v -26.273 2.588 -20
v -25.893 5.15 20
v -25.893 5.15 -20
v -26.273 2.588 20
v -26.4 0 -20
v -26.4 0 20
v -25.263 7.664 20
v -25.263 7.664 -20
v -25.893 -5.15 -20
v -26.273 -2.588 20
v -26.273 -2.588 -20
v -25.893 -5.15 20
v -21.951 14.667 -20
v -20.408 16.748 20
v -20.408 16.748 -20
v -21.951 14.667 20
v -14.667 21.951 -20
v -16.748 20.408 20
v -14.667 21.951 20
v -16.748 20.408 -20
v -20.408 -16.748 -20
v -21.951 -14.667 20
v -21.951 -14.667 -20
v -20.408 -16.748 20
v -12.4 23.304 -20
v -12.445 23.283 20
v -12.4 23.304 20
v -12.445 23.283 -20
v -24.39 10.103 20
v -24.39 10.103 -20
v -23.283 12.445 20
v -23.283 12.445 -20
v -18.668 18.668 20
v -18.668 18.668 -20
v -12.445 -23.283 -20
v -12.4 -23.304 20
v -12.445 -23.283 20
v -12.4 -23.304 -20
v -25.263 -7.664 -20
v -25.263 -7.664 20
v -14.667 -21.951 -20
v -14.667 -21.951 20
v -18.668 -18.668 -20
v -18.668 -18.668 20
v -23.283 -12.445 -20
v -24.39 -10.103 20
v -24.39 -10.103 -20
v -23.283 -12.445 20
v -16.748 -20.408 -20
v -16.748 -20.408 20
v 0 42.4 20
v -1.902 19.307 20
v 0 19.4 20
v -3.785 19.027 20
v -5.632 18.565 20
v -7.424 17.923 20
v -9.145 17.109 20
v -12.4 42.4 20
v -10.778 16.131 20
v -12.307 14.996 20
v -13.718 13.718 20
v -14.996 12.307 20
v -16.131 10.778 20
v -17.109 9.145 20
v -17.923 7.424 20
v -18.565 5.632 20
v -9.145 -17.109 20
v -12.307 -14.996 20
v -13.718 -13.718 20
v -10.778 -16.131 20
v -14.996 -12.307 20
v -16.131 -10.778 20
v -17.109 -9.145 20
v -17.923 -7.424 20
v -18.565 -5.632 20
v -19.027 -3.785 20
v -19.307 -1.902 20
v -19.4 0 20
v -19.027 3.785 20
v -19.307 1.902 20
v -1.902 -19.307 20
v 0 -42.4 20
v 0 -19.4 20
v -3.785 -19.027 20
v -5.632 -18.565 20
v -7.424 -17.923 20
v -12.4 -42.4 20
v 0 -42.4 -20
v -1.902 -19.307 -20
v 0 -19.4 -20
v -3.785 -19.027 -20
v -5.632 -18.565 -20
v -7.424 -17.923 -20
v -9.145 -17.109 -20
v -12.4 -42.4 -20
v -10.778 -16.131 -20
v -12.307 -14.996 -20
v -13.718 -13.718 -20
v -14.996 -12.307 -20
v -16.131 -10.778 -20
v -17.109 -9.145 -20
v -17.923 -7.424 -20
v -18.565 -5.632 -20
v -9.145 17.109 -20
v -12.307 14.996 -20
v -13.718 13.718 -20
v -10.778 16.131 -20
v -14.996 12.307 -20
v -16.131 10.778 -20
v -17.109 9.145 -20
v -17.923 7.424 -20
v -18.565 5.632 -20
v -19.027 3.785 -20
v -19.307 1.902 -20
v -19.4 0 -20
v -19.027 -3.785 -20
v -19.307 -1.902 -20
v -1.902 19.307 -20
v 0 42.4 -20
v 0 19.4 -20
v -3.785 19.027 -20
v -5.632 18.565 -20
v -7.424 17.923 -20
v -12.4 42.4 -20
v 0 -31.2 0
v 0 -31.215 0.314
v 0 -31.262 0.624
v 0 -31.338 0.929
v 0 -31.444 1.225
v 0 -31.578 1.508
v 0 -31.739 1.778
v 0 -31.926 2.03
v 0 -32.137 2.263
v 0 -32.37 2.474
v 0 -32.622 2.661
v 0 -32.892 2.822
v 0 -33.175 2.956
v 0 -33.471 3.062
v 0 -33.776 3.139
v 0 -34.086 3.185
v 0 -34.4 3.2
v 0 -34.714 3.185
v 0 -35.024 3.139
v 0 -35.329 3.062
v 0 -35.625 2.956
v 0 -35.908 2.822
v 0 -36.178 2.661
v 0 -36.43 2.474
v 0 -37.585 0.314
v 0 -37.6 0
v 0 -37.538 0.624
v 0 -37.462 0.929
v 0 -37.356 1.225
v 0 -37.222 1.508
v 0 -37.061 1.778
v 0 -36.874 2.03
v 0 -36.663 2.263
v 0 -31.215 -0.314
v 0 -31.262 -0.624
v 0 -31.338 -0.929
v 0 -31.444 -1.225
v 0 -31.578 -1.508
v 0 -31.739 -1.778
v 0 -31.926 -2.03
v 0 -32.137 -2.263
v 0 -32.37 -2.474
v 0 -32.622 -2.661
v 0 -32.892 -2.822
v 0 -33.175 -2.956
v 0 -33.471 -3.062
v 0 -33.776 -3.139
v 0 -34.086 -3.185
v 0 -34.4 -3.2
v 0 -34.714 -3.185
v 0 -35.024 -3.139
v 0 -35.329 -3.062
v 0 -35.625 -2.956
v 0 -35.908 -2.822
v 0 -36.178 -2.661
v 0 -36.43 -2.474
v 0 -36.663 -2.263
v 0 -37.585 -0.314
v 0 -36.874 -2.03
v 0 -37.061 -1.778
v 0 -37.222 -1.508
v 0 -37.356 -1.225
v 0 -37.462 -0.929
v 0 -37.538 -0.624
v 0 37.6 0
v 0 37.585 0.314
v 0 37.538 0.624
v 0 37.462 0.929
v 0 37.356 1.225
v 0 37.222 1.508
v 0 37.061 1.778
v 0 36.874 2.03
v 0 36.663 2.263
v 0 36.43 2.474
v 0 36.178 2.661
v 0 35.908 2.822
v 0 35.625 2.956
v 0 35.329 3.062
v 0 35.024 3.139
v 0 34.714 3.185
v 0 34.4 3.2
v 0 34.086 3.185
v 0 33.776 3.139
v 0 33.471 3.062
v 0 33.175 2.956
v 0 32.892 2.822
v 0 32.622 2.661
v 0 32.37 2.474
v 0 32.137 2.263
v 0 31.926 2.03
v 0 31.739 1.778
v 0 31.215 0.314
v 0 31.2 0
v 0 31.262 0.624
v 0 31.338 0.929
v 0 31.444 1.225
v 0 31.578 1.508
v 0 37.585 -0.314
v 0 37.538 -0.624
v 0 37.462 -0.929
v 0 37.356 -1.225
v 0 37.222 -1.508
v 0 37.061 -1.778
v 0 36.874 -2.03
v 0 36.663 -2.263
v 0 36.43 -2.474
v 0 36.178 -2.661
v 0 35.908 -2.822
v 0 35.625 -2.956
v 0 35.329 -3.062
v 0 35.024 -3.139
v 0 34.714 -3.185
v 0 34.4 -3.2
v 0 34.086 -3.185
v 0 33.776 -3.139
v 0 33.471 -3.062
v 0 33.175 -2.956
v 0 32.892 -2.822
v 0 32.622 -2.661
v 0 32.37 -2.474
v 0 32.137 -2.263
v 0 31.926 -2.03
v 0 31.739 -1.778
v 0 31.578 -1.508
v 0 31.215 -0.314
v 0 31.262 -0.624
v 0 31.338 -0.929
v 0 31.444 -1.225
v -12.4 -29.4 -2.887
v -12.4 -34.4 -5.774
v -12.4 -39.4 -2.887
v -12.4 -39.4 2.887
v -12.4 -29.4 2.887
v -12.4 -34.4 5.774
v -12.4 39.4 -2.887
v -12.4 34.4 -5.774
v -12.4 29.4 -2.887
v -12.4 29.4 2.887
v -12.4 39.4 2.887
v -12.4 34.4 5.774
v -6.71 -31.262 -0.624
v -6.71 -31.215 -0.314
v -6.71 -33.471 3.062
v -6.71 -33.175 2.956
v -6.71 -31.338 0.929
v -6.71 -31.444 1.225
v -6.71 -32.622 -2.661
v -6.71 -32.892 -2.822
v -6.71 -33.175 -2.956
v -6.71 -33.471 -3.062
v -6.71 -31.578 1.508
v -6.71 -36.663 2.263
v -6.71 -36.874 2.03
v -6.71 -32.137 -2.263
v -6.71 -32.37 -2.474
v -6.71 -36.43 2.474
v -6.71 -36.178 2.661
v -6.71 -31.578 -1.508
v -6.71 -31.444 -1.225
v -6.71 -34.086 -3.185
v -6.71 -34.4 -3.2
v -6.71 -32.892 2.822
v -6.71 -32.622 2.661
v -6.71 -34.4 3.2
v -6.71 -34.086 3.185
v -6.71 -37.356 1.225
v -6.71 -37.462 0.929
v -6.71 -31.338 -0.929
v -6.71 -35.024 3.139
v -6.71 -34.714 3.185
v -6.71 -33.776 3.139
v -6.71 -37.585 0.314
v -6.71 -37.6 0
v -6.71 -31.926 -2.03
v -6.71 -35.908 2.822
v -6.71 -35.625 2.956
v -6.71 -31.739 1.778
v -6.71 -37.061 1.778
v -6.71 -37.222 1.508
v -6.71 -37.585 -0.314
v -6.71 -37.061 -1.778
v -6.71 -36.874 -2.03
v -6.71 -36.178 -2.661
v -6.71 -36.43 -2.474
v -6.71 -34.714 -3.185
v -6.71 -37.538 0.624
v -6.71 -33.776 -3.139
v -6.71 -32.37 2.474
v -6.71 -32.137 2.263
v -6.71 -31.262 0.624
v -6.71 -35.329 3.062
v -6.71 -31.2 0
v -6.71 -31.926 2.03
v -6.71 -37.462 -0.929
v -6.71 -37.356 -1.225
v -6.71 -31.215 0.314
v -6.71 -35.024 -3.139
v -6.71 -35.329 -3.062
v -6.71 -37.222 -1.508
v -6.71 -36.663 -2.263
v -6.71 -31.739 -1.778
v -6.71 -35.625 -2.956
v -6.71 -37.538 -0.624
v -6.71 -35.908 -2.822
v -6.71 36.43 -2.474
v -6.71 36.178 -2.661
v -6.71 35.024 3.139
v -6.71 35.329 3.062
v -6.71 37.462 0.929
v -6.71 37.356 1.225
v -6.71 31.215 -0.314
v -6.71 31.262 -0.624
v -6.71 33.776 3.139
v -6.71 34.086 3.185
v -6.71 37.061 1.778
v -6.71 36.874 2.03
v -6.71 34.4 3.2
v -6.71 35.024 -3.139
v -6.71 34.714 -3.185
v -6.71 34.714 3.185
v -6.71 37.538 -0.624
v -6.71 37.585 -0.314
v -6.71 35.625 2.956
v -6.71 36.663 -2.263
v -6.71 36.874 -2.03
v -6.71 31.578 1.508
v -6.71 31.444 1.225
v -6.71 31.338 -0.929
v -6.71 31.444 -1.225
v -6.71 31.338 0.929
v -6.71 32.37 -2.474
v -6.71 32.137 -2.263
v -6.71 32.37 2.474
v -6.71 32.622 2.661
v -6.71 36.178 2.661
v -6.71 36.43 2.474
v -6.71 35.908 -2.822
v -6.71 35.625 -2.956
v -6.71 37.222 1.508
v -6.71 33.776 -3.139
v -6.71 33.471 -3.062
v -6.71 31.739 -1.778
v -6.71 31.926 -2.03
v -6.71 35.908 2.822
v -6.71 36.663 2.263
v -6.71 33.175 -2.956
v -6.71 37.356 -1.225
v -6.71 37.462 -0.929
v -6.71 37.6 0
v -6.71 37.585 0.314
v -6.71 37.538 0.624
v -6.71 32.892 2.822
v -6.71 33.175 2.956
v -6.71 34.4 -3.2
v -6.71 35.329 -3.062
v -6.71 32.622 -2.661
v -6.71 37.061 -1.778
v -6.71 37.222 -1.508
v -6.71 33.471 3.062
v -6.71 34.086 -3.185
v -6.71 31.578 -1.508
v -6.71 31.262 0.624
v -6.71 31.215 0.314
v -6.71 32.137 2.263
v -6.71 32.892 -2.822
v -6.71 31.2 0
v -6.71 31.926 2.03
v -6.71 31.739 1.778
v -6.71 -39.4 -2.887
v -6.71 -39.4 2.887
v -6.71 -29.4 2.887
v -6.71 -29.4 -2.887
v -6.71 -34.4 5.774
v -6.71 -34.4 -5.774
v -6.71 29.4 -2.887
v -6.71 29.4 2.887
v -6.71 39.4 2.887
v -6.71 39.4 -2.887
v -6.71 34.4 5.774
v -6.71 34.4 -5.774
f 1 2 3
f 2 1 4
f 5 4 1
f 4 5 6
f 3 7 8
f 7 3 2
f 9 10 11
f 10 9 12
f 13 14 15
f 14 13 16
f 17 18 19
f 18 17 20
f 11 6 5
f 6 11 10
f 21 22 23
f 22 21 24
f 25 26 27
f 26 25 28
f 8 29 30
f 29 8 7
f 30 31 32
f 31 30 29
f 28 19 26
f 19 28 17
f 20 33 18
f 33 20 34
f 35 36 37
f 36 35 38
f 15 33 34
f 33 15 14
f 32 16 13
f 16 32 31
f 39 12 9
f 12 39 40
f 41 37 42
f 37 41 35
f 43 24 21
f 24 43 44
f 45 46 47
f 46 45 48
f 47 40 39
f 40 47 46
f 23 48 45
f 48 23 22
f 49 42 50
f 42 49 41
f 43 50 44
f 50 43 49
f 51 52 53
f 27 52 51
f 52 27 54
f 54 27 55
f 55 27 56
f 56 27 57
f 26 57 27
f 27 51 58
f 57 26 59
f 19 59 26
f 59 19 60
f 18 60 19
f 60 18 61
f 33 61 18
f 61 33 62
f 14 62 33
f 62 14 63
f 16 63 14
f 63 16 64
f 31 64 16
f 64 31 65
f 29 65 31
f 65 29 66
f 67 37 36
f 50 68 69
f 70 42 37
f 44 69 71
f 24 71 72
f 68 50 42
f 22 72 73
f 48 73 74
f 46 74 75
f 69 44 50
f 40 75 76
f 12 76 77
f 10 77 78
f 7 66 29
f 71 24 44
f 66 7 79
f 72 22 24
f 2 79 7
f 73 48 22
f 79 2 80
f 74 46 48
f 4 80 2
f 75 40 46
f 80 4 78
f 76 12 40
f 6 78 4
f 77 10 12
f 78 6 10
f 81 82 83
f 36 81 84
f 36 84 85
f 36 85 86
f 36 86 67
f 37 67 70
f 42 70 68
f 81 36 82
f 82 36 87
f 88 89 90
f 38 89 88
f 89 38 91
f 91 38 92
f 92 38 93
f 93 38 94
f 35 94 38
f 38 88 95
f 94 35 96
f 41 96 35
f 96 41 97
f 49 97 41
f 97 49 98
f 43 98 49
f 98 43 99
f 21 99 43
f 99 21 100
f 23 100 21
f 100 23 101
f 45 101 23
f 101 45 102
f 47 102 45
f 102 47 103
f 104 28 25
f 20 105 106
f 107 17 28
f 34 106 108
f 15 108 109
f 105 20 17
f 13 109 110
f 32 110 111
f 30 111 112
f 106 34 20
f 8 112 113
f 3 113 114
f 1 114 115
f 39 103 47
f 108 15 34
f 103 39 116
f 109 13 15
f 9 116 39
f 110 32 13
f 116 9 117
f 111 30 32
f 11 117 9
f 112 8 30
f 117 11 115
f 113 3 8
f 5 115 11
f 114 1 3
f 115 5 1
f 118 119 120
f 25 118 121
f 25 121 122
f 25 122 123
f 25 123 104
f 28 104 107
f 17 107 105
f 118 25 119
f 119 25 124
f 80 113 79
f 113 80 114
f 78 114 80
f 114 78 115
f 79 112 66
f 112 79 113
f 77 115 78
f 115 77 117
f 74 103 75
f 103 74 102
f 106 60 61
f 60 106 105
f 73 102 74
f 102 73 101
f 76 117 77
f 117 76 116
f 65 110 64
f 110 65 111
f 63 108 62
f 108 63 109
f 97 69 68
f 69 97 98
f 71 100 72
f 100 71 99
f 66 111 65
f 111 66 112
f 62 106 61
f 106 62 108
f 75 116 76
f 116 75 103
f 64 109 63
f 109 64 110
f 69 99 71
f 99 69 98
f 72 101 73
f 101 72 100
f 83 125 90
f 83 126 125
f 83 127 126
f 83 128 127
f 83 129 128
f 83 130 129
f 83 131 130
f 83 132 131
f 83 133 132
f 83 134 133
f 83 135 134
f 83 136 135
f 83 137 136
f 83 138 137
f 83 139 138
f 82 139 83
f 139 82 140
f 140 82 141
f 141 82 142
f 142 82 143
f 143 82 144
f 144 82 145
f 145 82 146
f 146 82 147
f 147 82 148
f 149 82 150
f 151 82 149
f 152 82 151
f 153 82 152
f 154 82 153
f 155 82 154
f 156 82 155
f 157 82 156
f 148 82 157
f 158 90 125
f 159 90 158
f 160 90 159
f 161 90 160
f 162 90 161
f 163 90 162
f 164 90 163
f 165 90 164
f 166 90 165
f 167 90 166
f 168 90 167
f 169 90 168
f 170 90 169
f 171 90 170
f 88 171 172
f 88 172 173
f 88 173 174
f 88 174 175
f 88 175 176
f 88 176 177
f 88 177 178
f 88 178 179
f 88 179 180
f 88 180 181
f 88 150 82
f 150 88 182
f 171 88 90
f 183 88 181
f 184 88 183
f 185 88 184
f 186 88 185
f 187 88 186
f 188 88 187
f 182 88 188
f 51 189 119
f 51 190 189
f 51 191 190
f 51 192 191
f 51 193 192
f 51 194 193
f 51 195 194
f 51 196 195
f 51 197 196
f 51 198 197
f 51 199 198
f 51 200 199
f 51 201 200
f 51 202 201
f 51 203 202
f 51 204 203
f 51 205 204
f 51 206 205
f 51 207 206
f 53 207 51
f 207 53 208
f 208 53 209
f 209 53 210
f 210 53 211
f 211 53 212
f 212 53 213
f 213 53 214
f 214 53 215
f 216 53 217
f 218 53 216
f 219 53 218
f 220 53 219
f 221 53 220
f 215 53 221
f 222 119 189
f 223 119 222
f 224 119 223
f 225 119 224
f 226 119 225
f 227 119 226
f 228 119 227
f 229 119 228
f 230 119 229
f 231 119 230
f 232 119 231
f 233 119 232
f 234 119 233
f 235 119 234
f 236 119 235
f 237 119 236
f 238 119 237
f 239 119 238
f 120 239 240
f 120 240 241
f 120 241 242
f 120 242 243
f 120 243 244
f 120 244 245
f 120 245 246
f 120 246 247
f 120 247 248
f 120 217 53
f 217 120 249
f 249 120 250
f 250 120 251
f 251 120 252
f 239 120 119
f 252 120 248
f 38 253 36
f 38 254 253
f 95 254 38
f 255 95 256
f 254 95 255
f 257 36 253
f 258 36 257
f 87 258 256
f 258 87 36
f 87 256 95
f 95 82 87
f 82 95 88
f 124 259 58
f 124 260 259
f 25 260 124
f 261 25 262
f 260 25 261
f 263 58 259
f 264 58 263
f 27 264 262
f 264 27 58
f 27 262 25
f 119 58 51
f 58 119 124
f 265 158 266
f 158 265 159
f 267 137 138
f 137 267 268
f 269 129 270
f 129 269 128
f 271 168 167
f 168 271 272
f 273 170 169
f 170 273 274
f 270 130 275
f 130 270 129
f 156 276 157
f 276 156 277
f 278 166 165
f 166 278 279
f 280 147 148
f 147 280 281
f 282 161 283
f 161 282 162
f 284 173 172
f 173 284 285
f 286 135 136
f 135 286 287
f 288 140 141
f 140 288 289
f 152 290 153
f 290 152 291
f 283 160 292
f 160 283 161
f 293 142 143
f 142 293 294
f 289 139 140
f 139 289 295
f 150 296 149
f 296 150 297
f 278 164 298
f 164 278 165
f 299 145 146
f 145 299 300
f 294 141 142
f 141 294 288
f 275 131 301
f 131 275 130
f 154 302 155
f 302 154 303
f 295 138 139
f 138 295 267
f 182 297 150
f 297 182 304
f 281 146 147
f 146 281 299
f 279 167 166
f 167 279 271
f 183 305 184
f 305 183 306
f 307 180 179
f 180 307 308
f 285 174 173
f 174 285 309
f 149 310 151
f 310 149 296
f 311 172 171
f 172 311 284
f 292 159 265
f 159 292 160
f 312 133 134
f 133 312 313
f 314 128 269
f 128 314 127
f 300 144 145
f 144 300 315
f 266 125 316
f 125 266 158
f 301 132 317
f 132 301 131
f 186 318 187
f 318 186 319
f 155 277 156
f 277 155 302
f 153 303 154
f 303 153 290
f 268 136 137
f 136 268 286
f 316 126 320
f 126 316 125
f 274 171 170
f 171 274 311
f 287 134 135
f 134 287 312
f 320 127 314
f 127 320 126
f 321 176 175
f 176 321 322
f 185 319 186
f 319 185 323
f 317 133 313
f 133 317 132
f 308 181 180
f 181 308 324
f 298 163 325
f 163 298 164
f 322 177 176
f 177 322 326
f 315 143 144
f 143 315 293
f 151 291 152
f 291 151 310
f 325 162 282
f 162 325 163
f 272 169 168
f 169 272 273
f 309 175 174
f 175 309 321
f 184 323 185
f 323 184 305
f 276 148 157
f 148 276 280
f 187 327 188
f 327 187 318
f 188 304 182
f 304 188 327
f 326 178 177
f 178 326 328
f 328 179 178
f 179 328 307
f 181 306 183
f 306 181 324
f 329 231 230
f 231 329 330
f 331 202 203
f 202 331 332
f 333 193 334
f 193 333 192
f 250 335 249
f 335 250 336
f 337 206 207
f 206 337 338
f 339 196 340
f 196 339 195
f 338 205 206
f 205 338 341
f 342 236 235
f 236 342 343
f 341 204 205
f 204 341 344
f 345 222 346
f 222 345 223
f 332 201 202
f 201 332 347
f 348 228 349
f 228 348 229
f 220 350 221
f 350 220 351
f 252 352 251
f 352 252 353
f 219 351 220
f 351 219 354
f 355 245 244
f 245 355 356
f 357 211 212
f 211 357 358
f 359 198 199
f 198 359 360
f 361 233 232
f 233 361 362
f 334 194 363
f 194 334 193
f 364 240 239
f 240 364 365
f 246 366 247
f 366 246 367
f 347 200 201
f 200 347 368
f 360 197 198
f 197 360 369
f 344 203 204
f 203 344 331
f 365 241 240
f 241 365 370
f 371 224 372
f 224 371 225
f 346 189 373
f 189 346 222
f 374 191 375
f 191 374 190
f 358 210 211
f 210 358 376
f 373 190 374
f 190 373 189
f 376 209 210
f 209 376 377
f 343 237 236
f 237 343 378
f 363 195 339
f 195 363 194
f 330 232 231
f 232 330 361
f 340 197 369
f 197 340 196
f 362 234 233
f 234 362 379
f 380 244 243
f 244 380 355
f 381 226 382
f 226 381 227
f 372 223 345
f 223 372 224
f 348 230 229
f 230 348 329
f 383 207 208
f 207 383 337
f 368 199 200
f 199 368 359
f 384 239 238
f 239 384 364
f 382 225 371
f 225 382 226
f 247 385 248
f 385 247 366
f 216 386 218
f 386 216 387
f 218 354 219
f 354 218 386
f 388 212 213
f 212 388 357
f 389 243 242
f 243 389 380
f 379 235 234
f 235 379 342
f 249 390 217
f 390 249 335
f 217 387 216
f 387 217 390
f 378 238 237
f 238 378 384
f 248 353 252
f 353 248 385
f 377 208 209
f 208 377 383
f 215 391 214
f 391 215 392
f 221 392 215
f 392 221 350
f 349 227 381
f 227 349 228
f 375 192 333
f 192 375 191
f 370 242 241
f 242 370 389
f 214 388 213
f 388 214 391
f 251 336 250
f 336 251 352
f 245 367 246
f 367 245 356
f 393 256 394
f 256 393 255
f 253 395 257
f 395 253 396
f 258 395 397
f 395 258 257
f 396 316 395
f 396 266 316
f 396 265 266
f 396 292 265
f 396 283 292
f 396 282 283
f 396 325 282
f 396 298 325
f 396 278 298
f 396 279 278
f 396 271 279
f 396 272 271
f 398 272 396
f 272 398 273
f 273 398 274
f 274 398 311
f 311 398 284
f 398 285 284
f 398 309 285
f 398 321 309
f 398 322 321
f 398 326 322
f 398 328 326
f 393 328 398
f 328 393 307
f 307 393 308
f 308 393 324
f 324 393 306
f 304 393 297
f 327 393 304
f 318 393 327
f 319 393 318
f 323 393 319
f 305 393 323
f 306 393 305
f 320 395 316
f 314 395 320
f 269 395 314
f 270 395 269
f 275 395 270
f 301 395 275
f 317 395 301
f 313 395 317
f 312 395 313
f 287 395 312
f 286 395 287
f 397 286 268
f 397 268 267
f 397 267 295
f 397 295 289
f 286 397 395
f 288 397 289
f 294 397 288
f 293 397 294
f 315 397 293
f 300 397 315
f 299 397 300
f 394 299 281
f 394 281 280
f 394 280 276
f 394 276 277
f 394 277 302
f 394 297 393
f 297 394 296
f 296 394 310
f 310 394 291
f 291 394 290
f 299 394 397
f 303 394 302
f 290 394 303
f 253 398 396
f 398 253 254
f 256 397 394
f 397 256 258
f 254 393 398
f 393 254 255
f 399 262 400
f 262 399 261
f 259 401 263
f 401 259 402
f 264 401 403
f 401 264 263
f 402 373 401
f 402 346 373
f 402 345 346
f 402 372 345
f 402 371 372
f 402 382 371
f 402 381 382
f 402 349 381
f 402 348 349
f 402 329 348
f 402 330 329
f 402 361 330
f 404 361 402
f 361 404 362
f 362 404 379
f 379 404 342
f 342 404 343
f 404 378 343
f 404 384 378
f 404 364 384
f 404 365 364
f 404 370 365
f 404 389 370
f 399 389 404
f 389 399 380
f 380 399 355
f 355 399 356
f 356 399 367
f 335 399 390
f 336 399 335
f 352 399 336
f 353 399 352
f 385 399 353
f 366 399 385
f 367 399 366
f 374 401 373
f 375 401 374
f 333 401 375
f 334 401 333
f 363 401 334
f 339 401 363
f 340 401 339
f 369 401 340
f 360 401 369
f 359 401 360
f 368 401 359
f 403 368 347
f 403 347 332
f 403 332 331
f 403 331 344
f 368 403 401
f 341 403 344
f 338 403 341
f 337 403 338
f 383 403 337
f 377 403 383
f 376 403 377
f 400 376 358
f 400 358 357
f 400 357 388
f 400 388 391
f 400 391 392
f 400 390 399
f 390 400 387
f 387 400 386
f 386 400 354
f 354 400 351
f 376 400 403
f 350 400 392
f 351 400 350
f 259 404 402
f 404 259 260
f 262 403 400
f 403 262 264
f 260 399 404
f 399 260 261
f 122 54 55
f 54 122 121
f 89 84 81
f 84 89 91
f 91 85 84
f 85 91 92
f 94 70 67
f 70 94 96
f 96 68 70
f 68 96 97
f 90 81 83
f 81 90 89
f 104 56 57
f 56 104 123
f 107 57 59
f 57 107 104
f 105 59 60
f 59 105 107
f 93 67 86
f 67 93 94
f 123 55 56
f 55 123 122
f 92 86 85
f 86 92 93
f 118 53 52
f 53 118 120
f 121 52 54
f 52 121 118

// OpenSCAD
// file: common.scad
// Shared parameters and helper modules for the LawnBerry Pi zero-turn
// actuation mounts (Toro TimeCutter 50" conversion).
//
// EVERY dimension marked "MEASURE" is a placeholder. The Toro operator's
// manual (form 3465-589) carries no dimensioned drawings, so frame and
// lever sizes must come off the actual machine with calipers before you
// print anything structural. See README.md.

$fn = 64;

// ---------------------------------------------------------------- machine
// MEASURE: outside diameter of the frame tube the servo bracket clamps to.
frame_tube_od     = 38.1;   // 1.5" round tube, placeholder
// MEASURE: outside diameter of the lap-bar tube the pushrod clamp grips.
lapbar_tube_od    = 25.4;   // 1.0" round tube, placeholder
// MEASURE: wall thickness available for the throttle-servo mounting face.
panel_thickness   = 2.0;

// ----------------------------------------------------------------- servo
// DSSERVO RDS51150SG, from the manufacturer spec: 65 x 30 x 48 mm.
// The servo ships with U-shaped aluminium holders; these mounts bolt to
// those holders rather than gripping the servo body, which is both
// stronger and avoids trapping heat.
servo_body_l      = 65;
servo_body_w      = 30;
servo_body_h      = 48;
// MEASURE: hole spacing on the supplied U-bracket. Slots absorb error.
servo_bracket_hole_spacing_x = 50;
servo_bracket_hole_spacing_y = 20;

// --------------------------------------------------------------- fixings
m3_clear          = 3.4;
m4_clear          = 4.5;
m5_clear          = 5.5;
m6_clear          = 6.4;
m6_nut_af         = 10.0;   // across flats
m6_nut_h          = 5.2;
m5_nut_af         = 8.0;
m5_nut_h          = 4.7;

// ----------------------------------------------------------------- print
wall              = 5.0;    // structural wall; do not thin below 4 mm
clamp_wall        = 7.0;    // wall around clamped tubes
clearance         = 0.35;   // printer fit clearance, tune per machine

// ---------------------------------------------------------------- helpers

// Hex pocket for a captive nut, opening along +Z.
module nut_pocket(af, h) {
    cylinder(h = h, d = af / cos(30), $fn = 6);
}

// Slotted hole: lets you shim out mounting error without reprinting.
module slot(d, len, h) {
    hull() {
        translate([-len / 2, 0, 0]) cylinder(h = h, d = d);
        translate([ len / 2, 0, 0]) cylinder(h = h, d = d);
    }
}

// One half of a split tube clamp.
//
// Geometry: tube axis along Z. The split plane is X = 0, so this half
// occupies X >= 0 and the mating half is its mirror. Bolt ears stand off
// in +/-Y and the clamp bolts run along X through both halves. Any
// mounting boss extends in +X, clear of the ears.
//
// half = 0 -> the half carrying the mounting boss (bolt heads this side)
// half = 1 -> the plain closing half (captive nuts)
module tube_clamp_half(tube_od, width, ear_bolt = m6_clear,
                       ear_len = 16, half = 0) {
    r_in    = tube_od / 2 + clearance;
    r_out   = r_in + clamp_wall;
    ear_thk = ear_bolt + 6;              // ear thickness along X
    ear_yi  = r_in * 0.5;                // inner edge, buried in the barrel
    ear_yo  = r_out + ear_len;           // outer edge
    bolt_y  = r_out + ear_len * 0.5;
    nut_h   = (ear_bolt > 5) ? m6_nut_h : m5_nut_h;
    nut_af  = (ear_bolt > 5) ? m6_nut_af : m5_nut_af;
    difference() {
        union() {
            // Half barrel, X >= 0
            intersection() {
                difference() {
                    cylinder(h = width, r = r_out, center = true);
                    cylinder(h = width + 2, r = r_in, center = true);
                }
                translate([0, -r_out - 1, -width / 2 - 1])
                    cube([r_out + 1, 2 * r_out + 2, width + 2]);
            }
            // Bolt ears, both sides of the barrel
            for (s = [-1, 1])
                translate([ear_thk / 2,
                           s * (ear_yi + ear_yo) / 2,
                           0])
                    cube([ear_thk, ear_yo - ear_yi, width], center = true);
        }
        // Bore (re-cut so the ears cannot intrude)
        cylinder(h = width + 2, r = r_in, center = true);
        // Clamp bolt holes, axis along X
        for (s = [-1, 1])
            translate([0, s * bolt_y, 0])
                rotate([0, 90, 0])
                    cylinder(h = ear_thk * 4, d = ear_bolt, center = true);
        // Captive nuts in the closing half only
        if (half == 1)
            for (s = [-1, 1])
                translate([ear_thk + 0.01, s * bolt_y, 0])
                    rotate([0, -90, 0])
                        nut_pocket(nut_af, nut_h + 0.5);
    }
}
// main file
// Closing half of the frame-tube clamp used by servo_frame_mount.scad.
// Print TWO (one per servo mount). Captive M6 nuts drop into the pockets;
// bolts pass through from the mount side.
//
//   openscad -o servo_frame_mount_cap.stl servo_frame_mount_cap.scad

include <common.scad>

clamp_width = 40;   // must match servo_frame_mount.scad

rotate([0, 180, 0])
    tube_clamp_half(frame_tube_od, clamp_width, half = 1);
